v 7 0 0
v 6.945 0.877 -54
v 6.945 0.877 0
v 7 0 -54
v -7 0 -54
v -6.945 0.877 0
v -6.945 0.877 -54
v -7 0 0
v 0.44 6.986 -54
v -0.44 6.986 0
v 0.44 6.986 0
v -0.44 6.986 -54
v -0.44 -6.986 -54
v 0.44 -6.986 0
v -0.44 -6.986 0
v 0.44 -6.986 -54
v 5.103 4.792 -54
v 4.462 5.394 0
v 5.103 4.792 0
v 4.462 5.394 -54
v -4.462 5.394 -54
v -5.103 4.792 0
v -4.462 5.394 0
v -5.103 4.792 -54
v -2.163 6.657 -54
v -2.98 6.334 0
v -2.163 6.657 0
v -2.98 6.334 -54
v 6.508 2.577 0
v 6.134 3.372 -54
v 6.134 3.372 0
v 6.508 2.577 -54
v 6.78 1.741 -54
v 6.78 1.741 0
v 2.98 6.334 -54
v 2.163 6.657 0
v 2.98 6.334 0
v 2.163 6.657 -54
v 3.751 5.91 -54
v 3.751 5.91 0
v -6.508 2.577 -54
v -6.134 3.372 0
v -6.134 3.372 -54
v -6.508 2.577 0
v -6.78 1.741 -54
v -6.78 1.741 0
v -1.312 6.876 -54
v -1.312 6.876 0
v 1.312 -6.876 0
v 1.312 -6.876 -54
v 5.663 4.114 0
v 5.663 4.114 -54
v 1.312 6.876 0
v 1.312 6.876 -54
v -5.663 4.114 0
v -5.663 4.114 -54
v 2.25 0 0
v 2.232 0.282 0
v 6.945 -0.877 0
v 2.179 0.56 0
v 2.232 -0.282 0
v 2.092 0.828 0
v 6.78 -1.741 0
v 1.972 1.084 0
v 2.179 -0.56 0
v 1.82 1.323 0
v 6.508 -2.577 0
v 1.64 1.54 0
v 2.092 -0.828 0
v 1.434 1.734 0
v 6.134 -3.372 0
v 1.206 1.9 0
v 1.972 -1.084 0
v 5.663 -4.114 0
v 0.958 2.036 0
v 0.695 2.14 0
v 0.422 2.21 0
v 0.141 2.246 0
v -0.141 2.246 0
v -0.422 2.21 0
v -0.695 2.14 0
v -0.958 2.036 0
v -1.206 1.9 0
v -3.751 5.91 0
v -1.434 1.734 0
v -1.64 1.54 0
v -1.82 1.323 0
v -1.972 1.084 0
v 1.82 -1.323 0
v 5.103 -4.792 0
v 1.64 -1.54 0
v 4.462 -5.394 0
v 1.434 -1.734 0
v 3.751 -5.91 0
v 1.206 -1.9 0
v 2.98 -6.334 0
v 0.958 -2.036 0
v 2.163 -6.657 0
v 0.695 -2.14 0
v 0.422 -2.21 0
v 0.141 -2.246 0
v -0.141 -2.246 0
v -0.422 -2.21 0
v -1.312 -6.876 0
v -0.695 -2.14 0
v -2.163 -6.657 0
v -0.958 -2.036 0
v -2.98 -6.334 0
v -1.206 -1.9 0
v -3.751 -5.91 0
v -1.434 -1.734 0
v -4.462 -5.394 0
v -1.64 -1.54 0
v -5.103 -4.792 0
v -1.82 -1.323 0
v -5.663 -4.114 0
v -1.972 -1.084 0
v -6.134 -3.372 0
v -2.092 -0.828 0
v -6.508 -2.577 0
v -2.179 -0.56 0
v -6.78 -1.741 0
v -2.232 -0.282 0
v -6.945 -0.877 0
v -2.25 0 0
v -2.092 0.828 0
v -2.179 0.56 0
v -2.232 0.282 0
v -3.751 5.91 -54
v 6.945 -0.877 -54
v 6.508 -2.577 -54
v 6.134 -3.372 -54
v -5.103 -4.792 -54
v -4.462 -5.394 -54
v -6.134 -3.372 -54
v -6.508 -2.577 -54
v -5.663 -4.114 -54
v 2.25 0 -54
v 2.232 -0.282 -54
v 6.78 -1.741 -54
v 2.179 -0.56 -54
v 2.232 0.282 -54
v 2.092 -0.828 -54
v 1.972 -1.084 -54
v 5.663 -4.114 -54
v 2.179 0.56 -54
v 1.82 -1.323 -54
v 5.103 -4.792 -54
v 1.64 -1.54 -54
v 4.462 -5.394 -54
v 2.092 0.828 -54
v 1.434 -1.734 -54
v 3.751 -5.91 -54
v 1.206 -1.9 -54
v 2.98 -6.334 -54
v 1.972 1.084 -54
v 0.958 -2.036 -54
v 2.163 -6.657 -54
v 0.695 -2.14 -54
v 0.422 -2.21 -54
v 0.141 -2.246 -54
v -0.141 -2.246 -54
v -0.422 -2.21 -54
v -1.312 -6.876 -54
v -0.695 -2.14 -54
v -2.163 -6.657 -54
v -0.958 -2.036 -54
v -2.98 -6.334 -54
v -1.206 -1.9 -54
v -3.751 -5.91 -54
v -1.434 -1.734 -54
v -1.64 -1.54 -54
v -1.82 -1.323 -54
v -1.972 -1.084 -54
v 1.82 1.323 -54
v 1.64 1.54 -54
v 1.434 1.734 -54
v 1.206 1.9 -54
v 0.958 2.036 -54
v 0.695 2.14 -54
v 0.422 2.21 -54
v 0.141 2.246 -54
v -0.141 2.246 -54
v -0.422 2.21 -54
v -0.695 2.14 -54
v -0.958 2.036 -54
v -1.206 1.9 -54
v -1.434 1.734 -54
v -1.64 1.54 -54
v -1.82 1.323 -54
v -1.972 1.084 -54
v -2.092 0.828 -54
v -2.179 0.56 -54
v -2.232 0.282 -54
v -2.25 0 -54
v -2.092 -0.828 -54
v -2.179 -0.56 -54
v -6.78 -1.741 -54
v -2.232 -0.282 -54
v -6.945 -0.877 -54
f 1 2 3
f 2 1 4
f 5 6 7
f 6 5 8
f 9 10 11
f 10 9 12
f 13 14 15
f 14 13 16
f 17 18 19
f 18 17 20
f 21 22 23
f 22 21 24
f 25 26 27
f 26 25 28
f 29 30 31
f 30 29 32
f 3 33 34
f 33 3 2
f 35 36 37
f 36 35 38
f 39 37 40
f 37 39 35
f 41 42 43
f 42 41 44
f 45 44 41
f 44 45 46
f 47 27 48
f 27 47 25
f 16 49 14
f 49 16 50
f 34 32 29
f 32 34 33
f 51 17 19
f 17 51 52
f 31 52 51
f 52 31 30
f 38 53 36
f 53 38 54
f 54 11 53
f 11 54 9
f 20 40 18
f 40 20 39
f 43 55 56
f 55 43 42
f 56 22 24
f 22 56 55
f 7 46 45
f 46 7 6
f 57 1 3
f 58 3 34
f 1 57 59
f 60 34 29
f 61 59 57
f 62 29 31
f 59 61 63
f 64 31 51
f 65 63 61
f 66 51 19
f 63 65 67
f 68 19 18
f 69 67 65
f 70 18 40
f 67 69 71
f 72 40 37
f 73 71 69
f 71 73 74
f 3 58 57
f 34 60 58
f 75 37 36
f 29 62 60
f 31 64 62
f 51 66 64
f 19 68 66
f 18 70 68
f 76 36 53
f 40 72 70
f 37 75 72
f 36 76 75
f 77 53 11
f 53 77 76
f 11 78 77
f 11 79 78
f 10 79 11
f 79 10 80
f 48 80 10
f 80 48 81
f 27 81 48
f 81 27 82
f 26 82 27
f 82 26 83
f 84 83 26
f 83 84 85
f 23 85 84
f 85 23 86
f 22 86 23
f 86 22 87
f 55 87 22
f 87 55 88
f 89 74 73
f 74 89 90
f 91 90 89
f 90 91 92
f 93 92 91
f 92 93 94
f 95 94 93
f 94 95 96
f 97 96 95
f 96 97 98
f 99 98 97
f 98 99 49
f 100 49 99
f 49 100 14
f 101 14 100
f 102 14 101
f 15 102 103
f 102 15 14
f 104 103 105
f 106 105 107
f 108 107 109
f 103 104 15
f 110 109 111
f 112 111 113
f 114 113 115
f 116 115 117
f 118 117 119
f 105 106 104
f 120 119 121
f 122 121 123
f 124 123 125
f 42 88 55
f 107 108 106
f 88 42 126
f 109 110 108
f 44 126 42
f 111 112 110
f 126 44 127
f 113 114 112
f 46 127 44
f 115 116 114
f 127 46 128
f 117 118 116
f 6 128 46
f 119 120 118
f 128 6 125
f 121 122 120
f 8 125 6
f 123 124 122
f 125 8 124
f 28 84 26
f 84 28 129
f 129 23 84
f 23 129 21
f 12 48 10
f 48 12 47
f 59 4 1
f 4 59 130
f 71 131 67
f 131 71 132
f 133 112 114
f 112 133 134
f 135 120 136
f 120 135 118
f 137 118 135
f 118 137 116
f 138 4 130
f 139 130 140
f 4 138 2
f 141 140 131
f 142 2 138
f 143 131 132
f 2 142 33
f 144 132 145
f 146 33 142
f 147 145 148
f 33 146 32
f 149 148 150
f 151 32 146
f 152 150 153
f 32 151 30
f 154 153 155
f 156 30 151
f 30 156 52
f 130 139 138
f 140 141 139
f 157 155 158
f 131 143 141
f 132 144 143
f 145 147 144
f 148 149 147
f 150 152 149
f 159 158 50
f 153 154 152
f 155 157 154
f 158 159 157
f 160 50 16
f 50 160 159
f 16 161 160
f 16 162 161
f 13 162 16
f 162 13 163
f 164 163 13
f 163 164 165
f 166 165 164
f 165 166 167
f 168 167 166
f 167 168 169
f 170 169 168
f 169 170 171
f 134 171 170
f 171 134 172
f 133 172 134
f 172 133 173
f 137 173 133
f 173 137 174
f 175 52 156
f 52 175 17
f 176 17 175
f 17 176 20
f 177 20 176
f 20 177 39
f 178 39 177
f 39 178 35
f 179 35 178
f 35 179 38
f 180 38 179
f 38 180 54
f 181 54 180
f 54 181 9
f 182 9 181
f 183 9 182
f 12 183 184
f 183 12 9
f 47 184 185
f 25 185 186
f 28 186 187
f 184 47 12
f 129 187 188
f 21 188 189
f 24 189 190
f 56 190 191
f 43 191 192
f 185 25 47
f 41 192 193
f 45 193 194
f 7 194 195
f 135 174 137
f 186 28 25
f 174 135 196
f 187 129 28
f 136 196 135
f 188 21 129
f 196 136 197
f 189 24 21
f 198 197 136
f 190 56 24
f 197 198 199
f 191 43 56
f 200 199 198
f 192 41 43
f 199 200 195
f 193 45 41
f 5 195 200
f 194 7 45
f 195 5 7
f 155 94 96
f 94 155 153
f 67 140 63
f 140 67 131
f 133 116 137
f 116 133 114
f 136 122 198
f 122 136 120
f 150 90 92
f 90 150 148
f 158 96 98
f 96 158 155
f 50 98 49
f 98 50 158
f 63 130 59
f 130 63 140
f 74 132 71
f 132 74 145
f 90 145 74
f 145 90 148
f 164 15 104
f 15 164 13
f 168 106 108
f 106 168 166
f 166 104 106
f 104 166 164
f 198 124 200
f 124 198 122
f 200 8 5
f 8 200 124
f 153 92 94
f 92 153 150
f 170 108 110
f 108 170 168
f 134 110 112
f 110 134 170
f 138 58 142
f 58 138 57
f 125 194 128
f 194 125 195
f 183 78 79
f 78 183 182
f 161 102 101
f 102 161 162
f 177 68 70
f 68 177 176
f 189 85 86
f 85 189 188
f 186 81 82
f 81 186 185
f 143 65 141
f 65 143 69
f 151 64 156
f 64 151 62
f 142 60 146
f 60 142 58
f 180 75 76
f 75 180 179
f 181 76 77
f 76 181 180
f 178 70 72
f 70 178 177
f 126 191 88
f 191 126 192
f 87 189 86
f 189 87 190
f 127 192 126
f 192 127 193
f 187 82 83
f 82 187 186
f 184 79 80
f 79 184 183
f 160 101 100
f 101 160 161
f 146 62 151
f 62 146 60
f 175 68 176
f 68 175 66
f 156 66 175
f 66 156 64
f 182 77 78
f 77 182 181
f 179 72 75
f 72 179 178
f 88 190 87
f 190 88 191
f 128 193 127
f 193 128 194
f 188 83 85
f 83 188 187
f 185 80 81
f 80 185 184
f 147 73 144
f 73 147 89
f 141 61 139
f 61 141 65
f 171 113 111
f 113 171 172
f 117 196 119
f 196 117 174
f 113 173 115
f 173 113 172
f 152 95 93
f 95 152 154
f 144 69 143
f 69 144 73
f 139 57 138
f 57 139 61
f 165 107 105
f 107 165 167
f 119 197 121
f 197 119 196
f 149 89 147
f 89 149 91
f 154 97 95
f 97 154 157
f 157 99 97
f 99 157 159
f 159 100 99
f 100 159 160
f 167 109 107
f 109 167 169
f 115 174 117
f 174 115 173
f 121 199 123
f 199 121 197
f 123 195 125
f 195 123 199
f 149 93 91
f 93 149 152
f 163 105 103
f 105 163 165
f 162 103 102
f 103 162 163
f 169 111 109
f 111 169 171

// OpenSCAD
$fn = 50;


difference() {
	union() {
		translate(v = [0, 0, -54.0000000000]) {
			cylinder(h = 54, r = 7.0000000000);
		}
		cylinder(h = 0, r = 13.0000000000);
	}
	union() {
		#translate(v = [0, 0, -54]) {
			cylinder(h = 54, r = 2.2500000000);
		}
	}
}
